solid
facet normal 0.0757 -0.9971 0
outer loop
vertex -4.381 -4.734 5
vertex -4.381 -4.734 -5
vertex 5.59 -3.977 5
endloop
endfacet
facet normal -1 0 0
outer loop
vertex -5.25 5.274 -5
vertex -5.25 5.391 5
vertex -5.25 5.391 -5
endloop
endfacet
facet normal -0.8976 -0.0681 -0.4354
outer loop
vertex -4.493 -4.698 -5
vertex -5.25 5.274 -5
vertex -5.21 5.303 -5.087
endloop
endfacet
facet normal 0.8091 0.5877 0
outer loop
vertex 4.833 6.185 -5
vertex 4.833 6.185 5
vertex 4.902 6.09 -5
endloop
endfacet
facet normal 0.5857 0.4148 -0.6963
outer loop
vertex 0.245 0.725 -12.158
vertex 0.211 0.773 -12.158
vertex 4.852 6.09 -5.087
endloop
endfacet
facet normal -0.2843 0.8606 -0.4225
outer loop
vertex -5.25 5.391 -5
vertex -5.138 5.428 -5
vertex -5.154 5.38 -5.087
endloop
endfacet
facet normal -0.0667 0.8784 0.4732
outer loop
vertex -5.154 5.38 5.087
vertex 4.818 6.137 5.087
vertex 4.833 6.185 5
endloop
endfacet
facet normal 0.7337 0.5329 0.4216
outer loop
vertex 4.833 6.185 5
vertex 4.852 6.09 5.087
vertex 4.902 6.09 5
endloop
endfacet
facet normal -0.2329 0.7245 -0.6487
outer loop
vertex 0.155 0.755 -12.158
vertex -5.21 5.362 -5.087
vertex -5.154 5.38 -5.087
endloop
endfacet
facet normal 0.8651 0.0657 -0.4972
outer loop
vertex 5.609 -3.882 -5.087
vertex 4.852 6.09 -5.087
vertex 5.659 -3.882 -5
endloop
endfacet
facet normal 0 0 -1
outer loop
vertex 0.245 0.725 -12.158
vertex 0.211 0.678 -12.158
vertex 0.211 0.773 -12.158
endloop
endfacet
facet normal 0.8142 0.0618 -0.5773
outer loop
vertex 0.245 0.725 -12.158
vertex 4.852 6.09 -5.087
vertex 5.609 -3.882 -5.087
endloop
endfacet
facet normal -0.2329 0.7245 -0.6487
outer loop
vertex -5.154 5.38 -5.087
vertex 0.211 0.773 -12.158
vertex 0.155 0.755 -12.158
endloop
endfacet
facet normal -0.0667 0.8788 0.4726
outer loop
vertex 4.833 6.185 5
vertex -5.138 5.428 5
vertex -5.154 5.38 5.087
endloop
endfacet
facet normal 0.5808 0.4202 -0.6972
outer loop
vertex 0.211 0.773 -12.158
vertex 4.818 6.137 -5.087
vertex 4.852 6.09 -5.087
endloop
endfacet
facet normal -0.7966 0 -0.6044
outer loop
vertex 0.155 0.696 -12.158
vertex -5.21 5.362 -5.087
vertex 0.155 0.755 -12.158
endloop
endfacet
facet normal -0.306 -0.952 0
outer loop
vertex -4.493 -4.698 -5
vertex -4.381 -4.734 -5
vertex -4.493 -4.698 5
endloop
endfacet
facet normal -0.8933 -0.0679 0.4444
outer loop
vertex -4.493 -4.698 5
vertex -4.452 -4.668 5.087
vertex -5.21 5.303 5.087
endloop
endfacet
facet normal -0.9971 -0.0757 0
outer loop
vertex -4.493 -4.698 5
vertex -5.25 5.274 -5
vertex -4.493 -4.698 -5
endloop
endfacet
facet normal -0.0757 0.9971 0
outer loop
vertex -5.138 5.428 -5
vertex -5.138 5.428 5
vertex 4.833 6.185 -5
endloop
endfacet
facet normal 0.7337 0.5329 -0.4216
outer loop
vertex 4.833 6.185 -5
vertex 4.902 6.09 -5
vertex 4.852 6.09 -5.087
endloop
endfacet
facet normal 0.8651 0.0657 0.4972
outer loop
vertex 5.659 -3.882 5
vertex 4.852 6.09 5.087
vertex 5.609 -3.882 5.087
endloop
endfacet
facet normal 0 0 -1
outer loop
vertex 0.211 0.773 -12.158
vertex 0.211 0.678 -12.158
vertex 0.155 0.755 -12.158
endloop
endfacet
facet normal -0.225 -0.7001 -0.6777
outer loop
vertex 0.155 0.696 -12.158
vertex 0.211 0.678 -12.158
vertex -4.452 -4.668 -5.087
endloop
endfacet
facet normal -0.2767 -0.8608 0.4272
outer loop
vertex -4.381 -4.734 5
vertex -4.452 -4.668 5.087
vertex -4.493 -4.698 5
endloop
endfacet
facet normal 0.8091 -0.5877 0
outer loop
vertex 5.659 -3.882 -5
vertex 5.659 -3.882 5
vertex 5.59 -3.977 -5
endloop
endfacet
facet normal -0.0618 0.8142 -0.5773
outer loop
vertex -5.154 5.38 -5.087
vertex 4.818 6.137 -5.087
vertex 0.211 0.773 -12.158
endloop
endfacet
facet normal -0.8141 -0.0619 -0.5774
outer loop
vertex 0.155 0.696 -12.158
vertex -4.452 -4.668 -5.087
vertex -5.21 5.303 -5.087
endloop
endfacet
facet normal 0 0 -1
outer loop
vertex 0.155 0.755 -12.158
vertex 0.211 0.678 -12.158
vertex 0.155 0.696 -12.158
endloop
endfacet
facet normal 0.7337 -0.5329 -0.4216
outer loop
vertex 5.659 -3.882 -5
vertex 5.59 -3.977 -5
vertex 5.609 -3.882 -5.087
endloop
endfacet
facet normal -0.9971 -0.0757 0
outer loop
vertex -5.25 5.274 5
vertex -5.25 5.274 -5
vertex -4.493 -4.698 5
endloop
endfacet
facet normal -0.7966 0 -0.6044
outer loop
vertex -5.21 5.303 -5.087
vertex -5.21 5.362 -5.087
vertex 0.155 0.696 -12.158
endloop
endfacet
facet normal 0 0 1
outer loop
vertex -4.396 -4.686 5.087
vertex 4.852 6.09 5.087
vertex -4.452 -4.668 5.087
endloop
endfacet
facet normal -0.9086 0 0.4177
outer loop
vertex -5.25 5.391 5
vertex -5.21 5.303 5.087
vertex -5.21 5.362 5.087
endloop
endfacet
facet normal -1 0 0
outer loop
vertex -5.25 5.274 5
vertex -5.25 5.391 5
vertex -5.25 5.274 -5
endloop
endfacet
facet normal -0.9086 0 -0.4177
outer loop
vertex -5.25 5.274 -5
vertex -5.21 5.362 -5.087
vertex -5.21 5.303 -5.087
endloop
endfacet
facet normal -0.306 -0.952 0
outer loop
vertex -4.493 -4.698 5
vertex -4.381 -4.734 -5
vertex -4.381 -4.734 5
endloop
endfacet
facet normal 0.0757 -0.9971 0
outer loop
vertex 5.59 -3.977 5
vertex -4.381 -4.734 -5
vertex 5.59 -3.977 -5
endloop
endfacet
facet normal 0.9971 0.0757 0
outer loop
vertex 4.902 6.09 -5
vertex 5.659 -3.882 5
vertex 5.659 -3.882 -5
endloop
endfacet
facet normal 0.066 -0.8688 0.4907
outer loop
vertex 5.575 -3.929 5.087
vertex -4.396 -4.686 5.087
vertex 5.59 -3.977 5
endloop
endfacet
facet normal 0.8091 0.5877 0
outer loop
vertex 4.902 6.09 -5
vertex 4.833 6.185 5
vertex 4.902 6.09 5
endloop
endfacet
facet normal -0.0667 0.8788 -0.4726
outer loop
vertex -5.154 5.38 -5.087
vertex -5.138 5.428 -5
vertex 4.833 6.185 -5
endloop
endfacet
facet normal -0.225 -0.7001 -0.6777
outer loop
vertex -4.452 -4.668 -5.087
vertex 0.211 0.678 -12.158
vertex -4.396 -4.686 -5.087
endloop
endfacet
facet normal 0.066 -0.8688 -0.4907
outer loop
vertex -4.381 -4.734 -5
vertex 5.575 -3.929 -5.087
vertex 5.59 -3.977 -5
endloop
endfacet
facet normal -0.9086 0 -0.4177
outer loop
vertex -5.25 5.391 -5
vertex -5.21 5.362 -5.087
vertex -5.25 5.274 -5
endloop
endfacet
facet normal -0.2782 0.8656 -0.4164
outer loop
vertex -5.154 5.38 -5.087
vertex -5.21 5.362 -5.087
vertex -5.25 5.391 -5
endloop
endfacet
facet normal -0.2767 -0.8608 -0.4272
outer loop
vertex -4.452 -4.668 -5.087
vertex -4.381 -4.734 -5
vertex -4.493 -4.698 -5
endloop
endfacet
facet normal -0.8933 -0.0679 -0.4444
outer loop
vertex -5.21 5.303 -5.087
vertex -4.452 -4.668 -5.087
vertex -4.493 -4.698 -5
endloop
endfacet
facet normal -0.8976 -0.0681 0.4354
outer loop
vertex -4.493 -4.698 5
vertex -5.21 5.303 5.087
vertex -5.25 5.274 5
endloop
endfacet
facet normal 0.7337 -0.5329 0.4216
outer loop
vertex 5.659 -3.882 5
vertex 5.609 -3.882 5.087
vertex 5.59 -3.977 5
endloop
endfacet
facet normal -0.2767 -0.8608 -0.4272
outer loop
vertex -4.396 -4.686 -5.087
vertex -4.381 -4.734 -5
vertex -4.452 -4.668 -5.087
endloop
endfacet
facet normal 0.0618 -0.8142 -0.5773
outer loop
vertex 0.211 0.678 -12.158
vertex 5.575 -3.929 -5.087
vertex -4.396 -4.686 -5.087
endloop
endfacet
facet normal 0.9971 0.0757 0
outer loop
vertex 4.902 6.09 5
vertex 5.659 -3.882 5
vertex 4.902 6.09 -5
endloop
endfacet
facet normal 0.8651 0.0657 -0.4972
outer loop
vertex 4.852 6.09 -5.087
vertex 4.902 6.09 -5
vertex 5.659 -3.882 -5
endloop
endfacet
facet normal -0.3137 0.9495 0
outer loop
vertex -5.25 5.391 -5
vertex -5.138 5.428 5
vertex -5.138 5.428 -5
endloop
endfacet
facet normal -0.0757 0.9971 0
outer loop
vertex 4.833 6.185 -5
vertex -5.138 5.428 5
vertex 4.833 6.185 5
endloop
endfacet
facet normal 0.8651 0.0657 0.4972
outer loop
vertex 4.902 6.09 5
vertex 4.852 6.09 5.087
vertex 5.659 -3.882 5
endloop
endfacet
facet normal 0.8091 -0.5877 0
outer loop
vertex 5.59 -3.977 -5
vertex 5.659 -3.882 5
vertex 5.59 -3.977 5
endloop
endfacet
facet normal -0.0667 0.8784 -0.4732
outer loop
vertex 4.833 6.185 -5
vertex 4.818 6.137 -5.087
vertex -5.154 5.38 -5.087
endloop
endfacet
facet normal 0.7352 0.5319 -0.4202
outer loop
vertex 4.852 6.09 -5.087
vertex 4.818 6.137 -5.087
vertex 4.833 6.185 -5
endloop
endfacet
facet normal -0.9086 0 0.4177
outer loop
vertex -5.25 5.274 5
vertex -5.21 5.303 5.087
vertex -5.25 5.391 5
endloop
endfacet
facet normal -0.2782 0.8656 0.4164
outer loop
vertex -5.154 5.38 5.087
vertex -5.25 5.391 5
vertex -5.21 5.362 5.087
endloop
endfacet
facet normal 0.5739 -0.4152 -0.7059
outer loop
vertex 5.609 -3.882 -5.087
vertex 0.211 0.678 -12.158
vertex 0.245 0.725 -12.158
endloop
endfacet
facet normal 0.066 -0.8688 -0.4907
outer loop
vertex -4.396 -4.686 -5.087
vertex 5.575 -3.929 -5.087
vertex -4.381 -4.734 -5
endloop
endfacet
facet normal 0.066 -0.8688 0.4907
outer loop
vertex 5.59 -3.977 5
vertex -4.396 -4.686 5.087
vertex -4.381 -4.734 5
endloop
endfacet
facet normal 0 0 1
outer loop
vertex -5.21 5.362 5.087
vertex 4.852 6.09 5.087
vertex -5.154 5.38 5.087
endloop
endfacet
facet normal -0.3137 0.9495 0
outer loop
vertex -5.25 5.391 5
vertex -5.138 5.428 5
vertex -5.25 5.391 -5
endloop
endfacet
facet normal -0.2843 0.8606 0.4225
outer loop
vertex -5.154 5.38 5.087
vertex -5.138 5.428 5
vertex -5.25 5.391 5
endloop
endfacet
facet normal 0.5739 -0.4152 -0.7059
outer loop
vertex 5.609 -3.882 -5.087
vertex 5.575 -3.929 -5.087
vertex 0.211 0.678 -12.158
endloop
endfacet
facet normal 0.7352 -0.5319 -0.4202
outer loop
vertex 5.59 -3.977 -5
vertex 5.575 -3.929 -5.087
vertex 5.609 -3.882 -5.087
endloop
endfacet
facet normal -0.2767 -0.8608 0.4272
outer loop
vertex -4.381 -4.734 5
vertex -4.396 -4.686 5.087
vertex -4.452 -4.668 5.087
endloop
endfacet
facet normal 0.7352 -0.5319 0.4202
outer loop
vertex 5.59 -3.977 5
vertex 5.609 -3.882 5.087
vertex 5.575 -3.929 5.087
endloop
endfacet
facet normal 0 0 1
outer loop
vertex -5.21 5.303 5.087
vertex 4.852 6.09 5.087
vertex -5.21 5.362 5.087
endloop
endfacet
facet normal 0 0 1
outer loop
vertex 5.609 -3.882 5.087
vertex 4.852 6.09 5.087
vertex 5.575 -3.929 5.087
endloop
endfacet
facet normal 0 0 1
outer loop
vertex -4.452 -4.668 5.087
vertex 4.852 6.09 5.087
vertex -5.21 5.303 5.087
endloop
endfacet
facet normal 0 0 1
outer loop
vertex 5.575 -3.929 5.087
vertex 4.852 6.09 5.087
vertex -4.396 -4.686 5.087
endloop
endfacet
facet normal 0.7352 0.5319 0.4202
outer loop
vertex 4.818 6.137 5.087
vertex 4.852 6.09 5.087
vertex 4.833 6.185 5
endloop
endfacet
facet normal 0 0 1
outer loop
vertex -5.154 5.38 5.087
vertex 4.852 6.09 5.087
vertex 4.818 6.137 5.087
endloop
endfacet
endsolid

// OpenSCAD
// Auto-generated OpenSCAD file

    inner_points = 10*[[0.5559449618614191, -0.3881500309253424, -0.49999999999987577], [0.5559449618612677, -0.388150030925249, 0.5000000000001242], [0.48020738242017447, 0.6089777537945407, -0.4999999999999803], [0.48020738242002303, 0.6089777537946339, 0.5000000000000198], [-0.4411828228584638, -0.463887610366587, -0.5000000000000198], [-0.4411828228586152, -0.46388761036649373, 0.4999999999999803], [-0.5169204022997085, 0.5332401743532961, -0.5000000000001242], [-0.5169204022998598, 0.5332401743533893, 0.49999999999987577], [0.019512279780962472, 0.0725450717139109, -1.2071067811865475]];

    outer_points = 10*[[0.3096145243221563, 0.6725957727848044, -0.4491700933508113], [0.06987533319280242, -0.21820844720590366, -0.8351661579465389], [0.7796115315738568, 0.21820844720590366, 0.3075563906100046], [0.5398723404445028, -0.6725957727848044, -0.07843967398572299], [-0.5398723404445028, 0.6725957727848044, 0.07843967398572299], [-0.7796115315738568, -0.21820844720590366, -0.3075563906100046], [-0.06987533319280242, 0.21820844720590366, 0.8351661579465389], [-0.3096145243221563, -0.6725957727848044, 0.4491700933508113], [0.28939080332842093, 1.0752958146603768, 0.46593846708482345]];

    // Convex hull for inner set (I)
    module inner_hull() {
        hull() {
            for (p = inner_points) {
                translate(p) sphere(r=0.1);
            }
        }
    }

    // Convex hull for outer set (O) minus inner hull (O \ I)
    module outer_minus_inner() {
        difference() {
            hull() {
                for (p = outer_points) {
                    translate(p) sphere(r=0.1);
                }
            }
            inner_hull(); // Subtract inner hull
        }
    }

    // Convex hull for outer set (O) minus all translated inner hulls
    module outer_minus_AllTranslationInner() {
        difference() {
            hull() {
                for (p = outer_points) {
                    translate(p) sphere(r=0.1);
                }
            }
            hull() {
                translate([0,0,50]) inner_hull();
                translate([0,0,-50]) inner_hull();
            }; // Subtract translated inner hulls
        }
    }

    // Difference between outer_minus_inner and outer_minus_AllTranslationInner
    module outer_minus_inner_diff() {
        difference() {
            // Outer minus inner
            difference() {
                hull() {
                    for (p = outer_points) {
                        translate(p) sphere(r=0.1);
                    }
                }
                inner_hull();
            }

            // Subtract Outer minus AllTranslationInner
            difference() {
                hull() {
                    for (p = outer_points) {
                        translate(p) sphere(r=0.1);
                    }
                }
                hull() {
                    translate([0,0,50]) inner_hull();
                    translate([0,0,-50]) inner_hull();
                };
            }
        }
    }

    // Rendering all with colors applied
    color([1, 0, 0, 0.5]) inner_hull(); // Transparent red
    
